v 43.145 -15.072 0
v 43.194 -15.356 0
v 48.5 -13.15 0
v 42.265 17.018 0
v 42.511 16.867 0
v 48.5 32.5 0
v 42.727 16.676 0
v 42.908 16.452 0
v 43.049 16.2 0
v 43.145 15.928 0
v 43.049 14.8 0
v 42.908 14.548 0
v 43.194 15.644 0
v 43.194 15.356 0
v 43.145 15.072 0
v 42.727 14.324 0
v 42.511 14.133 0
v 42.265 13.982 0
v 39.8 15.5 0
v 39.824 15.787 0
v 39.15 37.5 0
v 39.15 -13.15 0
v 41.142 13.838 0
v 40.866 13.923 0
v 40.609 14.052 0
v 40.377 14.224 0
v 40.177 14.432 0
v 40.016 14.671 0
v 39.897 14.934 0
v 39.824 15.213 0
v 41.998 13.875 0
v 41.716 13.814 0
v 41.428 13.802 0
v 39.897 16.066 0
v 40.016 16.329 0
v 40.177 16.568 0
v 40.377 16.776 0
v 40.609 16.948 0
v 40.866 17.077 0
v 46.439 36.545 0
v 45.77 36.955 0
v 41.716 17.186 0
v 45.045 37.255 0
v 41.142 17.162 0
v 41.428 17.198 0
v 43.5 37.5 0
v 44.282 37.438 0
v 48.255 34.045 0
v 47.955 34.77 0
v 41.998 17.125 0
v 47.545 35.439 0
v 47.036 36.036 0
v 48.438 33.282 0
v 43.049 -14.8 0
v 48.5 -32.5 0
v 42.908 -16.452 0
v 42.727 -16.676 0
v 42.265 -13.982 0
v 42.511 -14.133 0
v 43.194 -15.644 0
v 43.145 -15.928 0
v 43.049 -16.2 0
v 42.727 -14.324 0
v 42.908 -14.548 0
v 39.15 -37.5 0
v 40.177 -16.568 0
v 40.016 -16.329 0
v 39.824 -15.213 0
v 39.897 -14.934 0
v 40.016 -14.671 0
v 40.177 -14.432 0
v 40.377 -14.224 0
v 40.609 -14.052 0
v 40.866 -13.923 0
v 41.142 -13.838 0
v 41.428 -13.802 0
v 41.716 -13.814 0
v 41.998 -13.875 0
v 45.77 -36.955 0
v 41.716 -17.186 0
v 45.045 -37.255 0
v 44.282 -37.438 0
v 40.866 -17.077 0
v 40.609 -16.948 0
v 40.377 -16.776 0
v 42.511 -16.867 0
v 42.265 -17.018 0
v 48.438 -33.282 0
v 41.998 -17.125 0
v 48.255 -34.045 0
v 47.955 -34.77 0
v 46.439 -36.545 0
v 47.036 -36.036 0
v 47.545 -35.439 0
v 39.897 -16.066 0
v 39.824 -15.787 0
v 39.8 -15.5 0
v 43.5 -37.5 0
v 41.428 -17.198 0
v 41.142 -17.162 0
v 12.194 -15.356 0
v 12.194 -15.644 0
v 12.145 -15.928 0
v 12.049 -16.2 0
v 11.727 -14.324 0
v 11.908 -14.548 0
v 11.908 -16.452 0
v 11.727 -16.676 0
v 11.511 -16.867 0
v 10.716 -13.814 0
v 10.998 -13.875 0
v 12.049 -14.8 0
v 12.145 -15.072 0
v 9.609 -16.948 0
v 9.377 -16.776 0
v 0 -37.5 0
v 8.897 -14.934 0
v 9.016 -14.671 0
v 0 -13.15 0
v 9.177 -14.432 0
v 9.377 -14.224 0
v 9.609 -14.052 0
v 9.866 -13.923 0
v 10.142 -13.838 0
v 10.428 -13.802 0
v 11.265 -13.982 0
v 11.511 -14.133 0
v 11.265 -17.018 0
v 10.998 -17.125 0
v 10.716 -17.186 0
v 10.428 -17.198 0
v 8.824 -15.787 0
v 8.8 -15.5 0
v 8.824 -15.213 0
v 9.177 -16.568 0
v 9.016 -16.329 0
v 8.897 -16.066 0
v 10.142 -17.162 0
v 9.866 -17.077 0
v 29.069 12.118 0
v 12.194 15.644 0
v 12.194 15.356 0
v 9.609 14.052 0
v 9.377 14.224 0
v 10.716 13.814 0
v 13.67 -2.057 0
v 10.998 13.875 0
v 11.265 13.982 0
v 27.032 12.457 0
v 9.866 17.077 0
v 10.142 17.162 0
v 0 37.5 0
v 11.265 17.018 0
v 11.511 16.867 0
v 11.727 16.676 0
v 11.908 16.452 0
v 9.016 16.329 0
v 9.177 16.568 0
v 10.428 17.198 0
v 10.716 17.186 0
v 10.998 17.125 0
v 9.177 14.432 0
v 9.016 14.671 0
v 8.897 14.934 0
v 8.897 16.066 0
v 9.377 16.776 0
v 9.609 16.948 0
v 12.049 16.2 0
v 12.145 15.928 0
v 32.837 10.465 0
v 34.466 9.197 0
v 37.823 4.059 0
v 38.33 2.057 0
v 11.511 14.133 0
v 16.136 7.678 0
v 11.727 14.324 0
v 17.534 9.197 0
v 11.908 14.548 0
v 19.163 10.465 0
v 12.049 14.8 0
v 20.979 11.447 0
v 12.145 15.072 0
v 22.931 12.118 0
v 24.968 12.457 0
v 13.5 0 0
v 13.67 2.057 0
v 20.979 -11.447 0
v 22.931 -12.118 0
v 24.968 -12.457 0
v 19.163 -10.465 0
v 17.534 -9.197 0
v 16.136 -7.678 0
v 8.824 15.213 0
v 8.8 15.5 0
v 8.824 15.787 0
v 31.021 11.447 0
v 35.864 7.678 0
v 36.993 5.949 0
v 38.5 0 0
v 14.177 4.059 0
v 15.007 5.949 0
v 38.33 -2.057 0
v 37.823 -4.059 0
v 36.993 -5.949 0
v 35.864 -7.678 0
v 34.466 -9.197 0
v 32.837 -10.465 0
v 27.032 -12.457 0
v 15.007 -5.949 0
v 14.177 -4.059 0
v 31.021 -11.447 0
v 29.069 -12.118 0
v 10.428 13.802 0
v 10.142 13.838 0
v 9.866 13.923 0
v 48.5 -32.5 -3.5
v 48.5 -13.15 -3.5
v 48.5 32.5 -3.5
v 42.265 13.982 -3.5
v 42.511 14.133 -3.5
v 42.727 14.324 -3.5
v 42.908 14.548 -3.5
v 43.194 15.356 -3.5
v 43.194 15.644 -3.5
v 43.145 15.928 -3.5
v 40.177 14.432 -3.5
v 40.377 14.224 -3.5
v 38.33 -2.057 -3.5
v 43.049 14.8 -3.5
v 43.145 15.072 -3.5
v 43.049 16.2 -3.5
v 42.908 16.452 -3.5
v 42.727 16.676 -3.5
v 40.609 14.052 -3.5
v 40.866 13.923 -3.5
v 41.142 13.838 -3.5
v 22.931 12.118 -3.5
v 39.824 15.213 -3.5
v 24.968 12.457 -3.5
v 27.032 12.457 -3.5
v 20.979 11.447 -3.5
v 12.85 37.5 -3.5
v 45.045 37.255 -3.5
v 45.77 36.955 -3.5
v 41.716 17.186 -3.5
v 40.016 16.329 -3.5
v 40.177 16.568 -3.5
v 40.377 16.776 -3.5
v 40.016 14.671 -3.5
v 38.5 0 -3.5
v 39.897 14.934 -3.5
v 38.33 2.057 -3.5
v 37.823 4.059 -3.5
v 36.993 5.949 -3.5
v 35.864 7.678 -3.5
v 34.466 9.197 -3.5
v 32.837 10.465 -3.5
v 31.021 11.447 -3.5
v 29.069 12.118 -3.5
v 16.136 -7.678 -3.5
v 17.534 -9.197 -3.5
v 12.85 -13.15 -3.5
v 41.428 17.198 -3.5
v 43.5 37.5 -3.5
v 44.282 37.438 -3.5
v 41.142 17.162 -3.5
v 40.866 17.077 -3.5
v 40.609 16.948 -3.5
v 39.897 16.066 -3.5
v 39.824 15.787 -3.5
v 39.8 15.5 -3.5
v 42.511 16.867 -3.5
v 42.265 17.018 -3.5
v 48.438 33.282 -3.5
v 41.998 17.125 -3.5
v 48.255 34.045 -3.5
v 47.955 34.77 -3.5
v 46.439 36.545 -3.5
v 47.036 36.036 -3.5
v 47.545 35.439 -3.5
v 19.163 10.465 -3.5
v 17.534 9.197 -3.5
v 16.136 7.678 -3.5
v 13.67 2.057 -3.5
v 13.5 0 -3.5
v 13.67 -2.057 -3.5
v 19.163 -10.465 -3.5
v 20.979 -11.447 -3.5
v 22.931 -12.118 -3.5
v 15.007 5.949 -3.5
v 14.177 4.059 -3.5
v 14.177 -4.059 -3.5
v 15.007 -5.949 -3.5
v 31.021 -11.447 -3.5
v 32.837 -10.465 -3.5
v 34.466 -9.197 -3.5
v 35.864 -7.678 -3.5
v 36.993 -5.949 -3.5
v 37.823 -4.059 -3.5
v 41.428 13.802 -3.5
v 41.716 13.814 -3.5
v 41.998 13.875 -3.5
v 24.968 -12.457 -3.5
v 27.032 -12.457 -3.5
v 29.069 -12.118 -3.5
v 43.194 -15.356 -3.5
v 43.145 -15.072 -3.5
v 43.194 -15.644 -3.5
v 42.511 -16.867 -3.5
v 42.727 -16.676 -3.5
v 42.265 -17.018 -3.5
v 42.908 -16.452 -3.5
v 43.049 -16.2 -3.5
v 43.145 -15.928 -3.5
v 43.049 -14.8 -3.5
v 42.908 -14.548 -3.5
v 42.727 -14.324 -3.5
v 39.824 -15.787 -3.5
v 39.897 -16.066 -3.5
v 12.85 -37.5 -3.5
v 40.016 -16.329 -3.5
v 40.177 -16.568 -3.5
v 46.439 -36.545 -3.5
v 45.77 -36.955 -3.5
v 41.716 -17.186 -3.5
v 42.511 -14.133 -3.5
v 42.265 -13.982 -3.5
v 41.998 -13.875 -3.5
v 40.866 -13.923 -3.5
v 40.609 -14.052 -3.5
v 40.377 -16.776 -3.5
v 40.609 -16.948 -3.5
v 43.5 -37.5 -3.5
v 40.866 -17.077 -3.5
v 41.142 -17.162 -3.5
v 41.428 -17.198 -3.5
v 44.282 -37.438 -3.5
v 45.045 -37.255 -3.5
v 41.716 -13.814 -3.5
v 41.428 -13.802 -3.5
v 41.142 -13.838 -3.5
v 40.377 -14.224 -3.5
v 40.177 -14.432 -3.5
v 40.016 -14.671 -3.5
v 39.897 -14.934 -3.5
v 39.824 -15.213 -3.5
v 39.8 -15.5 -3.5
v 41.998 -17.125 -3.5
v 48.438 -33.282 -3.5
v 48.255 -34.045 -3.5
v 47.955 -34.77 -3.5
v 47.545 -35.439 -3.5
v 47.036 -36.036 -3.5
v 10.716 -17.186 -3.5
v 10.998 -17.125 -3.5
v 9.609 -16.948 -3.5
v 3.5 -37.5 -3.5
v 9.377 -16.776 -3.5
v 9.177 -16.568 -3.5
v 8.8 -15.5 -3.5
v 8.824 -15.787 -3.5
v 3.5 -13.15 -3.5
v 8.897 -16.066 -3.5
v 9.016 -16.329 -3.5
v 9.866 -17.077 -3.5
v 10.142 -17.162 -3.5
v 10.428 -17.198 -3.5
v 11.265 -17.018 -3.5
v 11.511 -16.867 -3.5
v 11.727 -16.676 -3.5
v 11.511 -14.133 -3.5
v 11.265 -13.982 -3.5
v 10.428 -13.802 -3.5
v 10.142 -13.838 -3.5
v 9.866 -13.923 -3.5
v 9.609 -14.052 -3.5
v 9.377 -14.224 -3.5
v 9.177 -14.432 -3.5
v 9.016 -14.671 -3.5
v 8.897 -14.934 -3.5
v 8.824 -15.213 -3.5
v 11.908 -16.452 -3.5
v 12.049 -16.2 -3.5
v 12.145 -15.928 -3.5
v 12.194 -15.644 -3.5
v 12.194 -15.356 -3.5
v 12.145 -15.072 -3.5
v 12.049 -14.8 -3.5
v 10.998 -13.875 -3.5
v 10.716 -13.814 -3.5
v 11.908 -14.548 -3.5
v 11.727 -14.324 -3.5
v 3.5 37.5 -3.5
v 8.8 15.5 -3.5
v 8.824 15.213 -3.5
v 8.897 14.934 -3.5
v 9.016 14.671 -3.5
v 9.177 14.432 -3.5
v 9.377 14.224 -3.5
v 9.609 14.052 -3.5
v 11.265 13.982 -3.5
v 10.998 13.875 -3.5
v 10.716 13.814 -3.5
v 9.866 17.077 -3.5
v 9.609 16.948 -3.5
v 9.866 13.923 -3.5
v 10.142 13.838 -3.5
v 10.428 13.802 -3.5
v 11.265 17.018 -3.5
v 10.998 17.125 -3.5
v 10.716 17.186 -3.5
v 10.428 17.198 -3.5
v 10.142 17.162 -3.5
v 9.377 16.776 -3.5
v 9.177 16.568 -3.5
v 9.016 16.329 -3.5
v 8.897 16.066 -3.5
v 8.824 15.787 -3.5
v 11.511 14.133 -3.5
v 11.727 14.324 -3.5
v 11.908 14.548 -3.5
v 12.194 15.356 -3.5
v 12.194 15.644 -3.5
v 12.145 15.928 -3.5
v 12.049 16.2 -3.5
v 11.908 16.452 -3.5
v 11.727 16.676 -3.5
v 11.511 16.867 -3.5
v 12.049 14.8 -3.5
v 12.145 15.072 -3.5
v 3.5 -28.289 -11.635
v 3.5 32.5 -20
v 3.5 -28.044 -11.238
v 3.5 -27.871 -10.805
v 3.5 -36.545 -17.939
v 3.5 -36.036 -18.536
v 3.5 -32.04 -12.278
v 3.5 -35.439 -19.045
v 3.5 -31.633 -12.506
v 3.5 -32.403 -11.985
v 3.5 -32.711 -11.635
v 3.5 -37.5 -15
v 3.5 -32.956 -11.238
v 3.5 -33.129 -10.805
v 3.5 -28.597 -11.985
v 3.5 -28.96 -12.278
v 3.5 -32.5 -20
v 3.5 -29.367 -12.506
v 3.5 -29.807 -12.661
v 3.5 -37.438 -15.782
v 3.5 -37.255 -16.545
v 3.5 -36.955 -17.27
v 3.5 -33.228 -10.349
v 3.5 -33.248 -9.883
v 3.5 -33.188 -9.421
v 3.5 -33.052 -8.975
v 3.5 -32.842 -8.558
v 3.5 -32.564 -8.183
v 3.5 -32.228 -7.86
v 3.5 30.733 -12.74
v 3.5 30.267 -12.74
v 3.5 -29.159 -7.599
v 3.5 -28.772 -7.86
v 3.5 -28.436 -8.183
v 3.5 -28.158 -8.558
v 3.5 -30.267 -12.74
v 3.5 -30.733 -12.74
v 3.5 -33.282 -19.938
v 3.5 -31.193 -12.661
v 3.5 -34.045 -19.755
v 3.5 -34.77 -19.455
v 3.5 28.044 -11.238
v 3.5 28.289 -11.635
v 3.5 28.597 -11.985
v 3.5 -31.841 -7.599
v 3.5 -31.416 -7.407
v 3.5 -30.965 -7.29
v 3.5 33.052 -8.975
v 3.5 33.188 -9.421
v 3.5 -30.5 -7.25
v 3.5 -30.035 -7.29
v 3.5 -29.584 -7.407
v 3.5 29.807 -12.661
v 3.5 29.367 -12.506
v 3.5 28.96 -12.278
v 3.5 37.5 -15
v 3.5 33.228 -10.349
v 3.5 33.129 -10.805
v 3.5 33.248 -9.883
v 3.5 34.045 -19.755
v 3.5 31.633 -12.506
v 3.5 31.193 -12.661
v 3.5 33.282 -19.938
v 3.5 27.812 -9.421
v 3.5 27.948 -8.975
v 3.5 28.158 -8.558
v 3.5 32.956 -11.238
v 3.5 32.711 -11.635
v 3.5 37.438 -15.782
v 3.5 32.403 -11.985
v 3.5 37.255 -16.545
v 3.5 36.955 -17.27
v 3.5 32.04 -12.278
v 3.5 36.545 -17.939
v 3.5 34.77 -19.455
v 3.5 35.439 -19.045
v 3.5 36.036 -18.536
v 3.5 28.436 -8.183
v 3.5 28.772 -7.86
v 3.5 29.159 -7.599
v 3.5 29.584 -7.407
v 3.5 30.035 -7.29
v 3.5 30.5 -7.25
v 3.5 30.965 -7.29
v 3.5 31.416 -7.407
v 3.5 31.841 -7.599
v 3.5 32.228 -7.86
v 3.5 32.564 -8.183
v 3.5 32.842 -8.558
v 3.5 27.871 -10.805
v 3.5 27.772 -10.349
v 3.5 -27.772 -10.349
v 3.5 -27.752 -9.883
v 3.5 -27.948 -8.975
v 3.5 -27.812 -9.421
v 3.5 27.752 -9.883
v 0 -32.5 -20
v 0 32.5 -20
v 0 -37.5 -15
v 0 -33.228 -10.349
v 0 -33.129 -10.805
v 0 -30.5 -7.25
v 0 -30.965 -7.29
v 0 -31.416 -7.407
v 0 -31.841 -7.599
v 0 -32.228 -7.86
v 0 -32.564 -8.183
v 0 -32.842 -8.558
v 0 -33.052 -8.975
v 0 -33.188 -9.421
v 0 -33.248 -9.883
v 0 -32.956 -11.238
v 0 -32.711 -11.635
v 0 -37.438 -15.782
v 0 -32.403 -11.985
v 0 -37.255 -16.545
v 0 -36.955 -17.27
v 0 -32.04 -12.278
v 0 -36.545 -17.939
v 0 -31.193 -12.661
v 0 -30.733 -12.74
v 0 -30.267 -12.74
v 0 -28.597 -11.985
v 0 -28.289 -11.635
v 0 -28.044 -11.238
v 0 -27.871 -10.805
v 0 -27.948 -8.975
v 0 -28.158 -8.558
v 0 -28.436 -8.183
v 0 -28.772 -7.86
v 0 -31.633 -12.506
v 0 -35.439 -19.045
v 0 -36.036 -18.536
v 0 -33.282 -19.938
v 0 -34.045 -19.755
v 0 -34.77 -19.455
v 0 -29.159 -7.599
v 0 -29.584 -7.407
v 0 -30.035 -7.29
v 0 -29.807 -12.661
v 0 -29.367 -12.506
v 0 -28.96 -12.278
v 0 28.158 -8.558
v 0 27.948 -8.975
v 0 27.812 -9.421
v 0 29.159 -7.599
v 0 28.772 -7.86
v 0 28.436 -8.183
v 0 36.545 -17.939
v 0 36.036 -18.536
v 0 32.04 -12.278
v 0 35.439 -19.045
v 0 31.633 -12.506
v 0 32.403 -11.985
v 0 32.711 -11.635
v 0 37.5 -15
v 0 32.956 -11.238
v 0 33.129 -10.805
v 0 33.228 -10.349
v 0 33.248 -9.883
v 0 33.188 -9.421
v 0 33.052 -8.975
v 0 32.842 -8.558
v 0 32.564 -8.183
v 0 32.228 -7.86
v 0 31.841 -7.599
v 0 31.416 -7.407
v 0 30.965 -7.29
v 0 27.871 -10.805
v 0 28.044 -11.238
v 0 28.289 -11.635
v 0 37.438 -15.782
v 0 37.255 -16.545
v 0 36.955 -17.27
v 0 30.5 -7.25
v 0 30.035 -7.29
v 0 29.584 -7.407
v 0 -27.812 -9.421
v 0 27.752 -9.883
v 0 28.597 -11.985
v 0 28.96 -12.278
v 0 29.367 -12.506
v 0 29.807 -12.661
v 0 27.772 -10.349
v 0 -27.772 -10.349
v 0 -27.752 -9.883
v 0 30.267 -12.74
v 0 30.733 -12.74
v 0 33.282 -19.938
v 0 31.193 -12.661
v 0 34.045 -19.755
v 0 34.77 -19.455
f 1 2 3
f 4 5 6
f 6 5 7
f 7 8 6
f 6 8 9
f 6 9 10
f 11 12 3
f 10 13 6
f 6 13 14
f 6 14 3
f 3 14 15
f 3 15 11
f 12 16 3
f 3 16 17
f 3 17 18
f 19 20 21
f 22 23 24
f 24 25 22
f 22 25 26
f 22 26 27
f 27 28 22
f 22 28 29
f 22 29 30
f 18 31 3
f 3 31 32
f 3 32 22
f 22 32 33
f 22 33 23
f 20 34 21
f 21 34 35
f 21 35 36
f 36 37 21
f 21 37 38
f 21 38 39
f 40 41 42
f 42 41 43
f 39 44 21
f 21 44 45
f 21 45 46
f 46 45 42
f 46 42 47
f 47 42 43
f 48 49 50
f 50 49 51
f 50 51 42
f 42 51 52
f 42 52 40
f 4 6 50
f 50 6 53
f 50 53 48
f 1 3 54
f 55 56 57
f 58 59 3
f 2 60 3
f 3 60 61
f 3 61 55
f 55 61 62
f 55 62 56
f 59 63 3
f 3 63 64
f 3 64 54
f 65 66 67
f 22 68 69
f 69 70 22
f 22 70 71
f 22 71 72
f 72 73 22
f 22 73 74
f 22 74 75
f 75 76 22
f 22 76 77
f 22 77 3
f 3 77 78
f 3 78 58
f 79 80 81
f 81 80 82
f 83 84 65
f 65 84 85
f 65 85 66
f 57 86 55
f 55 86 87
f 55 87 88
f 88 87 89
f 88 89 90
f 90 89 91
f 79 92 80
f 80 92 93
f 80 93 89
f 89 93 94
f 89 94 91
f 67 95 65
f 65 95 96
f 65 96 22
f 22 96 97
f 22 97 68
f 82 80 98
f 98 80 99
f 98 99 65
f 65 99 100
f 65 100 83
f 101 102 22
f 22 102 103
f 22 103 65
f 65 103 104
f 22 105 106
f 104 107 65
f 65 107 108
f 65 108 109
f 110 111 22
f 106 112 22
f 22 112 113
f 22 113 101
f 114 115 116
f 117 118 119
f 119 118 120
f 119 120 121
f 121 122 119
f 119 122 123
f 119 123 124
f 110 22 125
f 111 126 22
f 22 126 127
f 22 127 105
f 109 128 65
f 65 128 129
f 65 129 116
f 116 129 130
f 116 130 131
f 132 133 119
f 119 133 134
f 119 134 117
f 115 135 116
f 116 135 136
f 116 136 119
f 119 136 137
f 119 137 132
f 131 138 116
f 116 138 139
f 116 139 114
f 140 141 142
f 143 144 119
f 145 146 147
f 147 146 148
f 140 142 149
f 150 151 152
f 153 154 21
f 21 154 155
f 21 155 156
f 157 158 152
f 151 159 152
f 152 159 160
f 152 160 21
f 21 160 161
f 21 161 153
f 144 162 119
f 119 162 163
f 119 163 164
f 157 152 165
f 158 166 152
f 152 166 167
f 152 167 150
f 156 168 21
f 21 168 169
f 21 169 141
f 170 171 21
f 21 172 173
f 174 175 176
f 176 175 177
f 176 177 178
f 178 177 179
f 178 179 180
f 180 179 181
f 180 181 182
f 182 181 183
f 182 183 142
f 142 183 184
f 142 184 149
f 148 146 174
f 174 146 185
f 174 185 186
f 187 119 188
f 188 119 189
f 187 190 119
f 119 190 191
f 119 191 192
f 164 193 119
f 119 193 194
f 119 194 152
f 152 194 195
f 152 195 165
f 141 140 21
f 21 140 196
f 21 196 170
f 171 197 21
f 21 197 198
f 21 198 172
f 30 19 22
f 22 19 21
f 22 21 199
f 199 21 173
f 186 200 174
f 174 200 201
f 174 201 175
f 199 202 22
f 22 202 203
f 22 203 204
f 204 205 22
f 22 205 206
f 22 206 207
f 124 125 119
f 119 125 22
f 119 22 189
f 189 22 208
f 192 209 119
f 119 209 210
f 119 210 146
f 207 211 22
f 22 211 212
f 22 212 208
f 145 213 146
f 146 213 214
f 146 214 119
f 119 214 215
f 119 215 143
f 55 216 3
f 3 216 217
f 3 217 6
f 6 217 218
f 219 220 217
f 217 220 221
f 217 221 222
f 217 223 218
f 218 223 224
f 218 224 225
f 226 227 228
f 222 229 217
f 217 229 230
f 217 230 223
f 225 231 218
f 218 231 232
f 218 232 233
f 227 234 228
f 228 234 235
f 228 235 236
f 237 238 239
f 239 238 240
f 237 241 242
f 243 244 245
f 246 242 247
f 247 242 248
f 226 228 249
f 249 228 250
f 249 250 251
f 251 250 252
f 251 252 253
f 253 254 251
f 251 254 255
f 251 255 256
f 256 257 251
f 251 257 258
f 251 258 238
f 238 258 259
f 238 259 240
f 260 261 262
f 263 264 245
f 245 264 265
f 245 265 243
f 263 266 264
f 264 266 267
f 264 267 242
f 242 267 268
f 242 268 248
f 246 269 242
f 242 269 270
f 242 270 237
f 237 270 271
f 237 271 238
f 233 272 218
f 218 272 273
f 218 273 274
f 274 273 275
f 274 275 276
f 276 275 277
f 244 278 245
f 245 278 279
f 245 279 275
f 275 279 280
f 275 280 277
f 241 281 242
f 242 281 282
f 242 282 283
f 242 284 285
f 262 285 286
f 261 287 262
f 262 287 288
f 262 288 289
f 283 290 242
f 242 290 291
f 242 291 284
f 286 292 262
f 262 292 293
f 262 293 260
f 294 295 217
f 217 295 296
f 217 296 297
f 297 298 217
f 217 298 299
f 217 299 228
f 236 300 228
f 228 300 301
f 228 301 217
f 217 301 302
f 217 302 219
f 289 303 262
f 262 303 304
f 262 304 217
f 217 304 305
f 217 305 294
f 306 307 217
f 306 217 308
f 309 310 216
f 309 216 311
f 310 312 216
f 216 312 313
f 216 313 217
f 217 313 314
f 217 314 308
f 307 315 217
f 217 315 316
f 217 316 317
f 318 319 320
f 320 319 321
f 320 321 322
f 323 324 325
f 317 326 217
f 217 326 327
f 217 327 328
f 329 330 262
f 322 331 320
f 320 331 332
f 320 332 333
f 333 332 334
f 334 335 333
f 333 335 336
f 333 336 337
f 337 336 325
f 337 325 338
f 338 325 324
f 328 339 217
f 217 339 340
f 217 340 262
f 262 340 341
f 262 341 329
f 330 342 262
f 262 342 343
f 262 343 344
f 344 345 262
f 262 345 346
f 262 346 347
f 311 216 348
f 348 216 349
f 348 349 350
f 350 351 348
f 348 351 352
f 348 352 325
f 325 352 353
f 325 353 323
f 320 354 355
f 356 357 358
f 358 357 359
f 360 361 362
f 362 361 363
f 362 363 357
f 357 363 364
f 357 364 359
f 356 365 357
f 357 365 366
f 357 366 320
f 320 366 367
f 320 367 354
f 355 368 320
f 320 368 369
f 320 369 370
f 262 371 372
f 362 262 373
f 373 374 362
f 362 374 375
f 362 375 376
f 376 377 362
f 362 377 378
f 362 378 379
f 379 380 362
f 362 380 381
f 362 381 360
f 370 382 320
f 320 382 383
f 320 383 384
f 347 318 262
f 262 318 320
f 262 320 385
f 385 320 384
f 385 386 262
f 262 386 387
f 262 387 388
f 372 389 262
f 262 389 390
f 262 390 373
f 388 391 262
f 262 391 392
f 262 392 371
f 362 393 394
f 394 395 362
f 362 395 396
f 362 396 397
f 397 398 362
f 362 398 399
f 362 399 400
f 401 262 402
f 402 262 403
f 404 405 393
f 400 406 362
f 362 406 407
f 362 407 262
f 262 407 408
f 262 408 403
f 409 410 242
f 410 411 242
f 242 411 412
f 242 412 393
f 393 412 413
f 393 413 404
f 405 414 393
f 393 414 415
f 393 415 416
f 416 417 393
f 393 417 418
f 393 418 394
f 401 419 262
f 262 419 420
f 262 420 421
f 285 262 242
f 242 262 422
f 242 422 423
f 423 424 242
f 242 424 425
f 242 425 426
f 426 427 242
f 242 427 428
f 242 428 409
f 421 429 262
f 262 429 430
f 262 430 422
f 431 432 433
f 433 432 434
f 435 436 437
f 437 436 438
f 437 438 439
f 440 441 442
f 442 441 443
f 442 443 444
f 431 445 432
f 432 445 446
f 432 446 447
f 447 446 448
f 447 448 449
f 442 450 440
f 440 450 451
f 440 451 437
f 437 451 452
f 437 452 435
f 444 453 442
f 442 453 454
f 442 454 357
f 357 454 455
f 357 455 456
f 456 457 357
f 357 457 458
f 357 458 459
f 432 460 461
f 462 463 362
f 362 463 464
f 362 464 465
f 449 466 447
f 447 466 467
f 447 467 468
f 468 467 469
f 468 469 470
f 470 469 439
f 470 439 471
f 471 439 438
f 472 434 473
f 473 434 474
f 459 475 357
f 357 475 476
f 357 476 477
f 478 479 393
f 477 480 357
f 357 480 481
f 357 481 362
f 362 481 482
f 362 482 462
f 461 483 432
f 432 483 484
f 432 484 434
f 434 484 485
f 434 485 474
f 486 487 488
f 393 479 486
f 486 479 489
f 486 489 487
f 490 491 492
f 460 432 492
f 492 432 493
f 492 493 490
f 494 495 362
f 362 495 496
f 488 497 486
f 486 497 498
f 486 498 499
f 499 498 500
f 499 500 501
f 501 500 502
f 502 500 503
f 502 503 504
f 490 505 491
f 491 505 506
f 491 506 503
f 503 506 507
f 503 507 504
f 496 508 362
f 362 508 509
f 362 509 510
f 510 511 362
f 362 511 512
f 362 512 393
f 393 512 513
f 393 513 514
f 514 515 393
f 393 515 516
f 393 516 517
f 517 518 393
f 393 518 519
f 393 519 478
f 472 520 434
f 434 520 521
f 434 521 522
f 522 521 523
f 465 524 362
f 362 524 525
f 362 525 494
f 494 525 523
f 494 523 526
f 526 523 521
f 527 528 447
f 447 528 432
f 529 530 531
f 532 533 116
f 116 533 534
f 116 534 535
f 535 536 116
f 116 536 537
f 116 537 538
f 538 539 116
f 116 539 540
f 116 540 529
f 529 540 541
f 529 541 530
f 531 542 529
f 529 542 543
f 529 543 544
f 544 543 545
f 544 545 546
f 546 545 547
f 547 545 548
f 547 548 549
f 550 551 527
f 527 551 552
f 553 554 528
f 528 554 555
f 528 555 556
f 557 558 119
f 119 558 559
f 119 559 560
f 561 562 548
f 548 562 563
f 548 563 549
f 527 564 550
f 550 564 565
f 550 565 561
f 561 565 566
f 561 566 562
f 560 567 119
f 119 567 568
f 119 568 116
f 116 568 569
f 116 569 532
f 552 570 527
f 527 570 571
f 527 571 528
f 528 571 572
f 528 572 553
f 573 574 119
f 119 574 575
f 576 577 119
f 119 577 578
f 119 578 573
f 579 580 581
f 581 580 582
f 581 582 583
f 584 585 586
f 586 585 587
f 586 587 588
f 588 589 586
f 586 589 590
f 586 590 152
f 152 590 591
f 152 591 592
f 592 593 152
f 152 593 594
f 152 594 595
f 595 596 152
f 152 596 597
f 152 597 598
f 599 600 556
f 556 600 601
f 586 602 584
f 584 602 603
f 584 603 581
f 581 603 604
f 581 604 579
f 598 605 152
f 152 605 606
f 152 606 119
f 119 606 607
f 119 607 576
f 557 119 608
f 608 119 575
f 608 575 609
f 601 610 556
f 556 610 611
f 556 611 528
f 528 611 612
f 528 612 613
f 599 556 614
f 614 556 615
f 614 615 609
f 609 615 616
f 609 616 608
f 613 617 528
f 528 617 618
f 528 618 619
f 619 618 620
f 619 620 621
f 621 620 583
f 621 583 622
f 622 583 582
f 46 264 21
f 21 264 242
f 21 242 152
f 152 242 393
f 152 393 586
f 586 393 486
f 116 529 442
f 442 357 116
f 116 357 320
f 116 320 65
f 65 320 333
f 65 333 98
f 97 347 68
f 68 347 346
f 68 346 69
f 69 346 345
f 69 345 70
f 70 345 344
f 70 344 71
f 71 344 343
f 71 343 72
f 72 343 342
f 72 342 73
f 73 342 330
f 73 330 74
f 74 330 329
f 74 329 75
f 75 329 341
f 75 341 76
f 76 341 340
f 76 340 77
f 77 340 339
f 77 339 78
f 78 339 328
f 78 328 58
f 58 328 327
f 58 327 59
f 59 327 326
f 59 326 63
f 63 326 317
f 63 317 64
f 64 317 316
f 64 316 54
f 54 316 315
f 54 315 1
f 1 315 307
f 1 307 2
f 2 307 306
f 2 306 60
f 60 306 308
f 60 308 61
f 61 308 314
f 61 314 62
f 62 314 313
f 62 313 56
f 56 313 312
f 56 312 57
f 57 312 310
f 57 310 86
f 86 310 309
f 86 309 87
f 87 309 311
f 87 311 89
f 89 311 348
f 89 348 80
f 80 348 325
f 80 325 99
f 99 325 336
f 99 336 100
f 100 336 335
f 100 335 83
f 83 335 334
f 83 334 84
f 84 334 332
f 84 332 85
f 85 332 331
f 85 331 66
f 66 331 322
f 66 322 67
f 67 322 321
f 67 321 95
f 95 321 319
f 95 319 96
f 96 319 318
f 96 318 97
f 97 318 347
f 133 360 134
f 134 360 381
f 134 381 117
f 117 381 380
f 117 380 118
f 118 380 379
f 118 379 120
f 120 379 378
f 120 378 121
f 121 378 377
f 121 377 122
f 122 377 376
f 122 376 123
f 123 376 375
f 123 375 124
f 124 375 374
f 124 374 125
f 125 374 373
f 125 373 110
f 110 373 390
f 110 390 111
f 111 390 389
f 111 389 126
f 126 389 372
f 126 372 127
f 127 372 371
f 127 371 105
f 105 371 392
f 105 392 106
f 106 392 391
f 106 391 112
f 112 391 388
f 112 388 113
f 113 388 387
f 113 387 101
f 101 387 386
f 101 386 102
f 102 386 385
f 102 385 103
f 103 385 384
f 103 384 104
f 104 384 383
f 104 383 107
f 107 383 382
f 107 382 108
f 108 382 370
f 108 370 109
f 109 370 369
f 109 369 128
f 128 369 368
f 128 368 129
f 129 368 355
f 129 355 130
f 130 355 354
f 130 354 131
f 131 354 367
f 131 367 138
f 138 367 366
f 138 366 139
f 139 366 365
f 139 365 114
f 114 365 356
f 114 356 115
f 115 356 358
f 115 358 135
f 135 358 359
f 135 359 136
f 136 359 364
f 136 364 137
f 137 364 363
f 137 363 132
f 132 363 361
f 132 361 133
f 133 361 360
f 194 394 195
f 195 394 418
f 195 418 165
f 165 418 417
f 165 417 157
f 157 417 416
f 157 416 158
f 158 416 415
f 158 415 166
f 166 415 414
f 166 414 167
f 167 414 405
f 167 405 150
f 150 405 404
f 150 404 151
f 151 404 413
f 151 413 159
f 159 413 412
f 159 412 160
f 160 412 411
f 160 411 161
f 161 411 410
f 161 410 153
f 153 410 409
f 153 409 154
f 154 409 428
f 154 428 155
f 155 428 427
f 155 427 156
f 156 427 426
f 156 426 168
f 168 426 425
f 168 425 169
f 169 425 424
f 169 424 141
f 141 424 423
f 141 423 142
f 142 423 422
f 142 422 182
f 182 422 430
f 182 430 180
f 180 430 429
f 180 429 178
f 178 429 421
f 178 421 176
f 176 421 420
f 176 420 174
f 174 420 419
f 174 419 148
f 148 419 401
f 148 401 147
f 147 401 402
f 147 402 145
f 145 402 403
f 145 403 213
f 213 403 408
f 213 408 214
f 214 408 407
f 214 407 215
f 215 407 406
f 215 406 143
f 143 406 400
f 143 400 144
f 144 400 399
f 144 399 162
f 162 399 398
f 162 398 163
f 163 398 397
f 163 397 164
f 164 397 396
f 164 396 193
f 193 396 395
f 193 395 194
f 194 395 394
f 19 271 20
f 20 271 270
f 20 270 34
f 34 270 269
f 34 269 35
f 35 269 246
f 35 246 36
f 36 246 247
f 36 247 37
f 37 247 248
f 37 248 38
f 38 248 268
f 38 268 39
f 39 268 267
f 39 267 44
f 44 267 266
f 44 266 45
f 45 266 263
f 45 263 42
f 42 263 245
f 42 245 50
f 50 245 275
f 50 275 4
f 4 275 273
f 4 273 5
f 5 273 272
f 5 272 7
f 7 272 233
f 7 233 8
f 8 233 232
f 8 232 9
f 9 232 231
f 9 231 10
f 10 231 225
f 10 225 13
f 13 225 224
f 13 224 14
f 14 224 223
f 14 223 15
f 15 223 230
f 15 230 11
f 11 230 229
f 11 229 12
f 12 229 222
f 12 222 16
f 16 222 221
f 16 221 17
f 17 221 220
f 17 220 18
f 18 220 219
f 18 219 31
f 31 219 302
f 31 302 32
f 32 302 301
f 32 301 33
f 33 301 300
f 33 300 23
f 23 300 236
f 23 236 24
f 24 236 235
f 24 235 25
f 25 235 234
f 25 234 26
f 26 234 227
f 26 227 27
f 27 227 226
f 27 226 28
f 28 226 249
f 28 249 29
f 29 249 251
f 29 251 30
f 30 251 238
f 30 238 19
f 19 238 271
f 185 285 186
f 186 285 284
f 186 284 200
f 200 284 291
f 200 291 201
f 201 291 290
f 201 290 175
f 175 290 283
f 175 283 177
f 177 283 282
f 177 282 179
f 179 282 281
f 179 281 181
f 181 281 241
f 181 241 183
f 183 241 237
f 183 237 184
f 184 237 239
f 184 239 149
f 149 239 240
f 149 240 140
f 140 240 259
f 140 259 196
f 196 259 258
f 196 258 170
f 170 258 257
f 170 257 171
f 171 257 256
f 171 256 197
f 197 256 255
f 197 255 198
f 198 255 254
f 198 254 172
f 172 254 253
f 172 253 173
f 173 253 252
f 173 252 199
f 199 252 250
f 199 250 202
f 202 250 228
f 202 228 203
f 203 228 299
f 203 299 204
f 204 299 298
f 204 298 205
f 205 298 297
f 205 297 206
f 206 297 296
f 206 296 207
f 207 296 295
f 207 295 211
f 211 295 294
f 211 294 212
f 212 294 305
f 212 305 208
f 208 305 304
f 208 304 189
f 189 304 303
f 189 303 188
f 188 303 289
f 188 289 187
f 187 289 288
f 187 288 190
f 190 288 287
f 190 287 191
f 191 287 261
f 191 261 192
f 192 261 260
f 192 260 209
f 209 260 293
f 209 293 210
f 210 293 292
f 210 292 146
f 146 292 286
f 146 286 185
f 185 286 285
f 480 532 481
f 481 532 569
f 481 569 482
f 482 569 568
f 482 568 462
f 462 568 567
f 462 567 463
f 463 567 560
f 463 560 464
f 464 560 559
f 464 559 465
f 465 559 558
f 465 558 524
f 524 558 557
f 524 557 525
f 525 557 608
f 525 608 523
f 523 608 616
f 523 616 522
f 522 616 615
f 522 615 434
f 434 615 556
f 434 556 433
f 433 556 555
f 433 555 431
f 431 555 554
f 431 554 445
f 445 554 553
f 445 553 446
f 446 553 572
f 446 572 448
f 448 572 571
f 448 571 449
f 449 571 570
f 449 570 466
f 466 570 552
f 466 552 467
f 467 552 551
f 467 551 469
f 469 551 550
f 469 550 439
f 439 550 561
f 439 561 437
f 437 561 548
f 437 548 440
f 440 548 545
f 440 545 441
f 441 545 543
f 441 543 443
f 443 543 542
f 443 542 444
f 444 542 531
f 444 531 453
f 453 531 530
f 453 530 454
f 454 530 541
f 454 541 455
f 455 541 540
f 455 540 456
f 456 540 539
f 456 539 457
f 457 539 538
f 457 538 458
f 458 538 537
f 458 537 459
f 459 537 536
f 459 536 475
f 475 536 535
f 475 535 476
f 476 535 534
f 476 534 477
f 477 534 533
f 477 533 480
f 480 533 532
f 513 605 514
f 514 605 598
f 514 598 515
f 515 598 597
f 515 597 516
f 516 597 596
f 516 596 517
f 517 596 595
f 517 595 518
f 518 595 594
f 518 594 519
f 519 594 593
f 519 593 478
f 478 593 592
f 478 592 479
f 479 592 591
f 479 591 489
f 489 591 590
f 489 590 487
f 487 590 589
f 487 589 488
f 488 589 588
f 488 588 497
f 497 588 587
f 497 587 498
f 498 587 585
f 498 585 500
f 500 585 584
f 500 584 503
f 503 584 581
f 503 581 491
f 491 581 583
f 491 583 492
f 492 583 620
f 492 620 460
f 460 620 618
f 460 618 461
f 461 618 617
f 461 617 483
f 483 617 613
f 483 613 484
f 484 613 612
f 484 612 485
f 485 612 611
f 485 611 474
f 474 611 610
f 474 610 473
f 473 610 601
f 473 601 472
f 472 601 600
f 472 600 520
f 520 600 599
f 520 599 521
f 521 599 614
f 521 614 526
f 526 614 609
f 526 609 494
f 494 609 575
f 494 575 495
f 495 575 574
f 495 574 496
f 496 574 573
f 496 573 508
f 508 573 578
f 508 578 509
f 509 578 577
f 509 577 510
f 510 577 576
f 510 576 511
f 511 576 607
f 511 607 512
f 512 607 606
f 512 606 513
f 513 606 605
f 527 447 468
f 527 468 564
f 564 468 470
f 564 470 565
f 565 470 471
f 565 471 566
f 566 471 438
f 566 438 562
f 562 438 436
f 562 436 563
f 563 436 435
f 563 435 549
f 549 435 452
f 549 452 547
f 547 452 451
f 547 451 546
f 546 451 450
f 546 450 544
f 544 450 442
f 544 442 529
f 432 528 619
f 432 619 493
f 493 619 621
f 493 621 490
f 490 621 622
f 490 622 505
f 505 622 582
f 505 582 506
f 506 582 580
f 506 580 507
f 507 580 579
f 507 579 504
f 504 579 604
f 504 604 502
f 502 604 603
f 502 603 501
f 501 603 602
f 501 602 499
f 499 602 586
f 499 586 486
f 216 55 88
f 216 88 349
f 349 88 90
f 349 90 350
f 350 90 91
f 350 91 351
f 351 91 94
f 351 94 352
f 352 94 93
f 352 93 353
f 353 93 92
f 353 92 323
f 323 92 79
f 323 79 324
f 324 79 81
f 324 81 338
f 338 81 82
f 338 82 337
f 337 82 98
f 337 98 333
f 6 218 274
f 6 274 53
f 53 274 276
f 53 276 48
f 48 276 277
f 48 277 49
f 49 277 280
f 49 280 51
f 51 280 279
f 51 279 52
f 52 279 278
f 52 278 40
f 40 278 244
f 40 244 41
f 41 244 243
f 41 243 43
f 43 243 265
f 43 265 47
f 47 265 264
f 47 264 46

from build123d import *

# Parameters (mm, degrees)
BOSS_EXTRUDE1_DEPTH  = 37.5
M3_CLEARANCE_HOLE1_D = 3.4
SKETCH4_R            = 12.5
CUT_EXTRUDE1_DEPTH   = 64.488187878
M5_CLEARANCE_HOLE1_D = 5.5
FILLET1_R            = 5


with BuildPart() as part:
    # Sketch1 → Boss-Extrude1 (new, symmetric)
    with BuildSketch(Plane(origin=(0, 0, 0), x_dir=(1, 0, 0), z_dir=(0, 1, 0))):
        Polygon((0, 0), (0, 20), (3.5, 20), (3.5, 3.5), (48.5, 3.5), (48.5, 0), align=None)
    extrude(amount=BOSS_EXTRUDE1_DEPTH, both=True)

    # M3 Clearance Hole1 (through all)
    with Locations(Plane(origin=(0, 0, -3.5), x_dir=(-1, 0, 0), z_dir=(0, 0, -1))):
        with Locations((-41.5, 15.5), (-10.5, 15.5), (-10.5, -15.5), (-41.5, -15.5)):
            Hole(M3_CLEARANCE_HOLE1_D / 2)

    # Sketch4 → Cut-Extrude1 (cut, through all)
    with BuildSketch(Plane(origin=(0, 0, -3.5), x_dir=(-1, 0, 0), z_dir=(0, 0, -1))):
        with Locations((-26, 0)):
            Circle(SKETCH4_R)
    extrude(amount=-CUT_EXTRUDE1_DEPTH, mode=Mode.SUBTRACT)

    # M5 Clearance Hole1 (through all)
    with Locations(Plane.ZY):
        with Locations((-10, 30.5), (-10, -30.5)):
            Hole(M5_CLEARANCE_HOLE1_D / 2)

    # Fillet1
    fillet1_edges = [part.edges().sort_by_distance(p)[0] for p in [
        (1.75, 37.5, -20),
        (1.75, -37.5, -20),
        (48.5, -37.5, -1.75),
        (48.5, 37.5, -1.75),
    ]]
    fillet(fillet1_edges, radius=FILLET1_R)


solid = part.part
